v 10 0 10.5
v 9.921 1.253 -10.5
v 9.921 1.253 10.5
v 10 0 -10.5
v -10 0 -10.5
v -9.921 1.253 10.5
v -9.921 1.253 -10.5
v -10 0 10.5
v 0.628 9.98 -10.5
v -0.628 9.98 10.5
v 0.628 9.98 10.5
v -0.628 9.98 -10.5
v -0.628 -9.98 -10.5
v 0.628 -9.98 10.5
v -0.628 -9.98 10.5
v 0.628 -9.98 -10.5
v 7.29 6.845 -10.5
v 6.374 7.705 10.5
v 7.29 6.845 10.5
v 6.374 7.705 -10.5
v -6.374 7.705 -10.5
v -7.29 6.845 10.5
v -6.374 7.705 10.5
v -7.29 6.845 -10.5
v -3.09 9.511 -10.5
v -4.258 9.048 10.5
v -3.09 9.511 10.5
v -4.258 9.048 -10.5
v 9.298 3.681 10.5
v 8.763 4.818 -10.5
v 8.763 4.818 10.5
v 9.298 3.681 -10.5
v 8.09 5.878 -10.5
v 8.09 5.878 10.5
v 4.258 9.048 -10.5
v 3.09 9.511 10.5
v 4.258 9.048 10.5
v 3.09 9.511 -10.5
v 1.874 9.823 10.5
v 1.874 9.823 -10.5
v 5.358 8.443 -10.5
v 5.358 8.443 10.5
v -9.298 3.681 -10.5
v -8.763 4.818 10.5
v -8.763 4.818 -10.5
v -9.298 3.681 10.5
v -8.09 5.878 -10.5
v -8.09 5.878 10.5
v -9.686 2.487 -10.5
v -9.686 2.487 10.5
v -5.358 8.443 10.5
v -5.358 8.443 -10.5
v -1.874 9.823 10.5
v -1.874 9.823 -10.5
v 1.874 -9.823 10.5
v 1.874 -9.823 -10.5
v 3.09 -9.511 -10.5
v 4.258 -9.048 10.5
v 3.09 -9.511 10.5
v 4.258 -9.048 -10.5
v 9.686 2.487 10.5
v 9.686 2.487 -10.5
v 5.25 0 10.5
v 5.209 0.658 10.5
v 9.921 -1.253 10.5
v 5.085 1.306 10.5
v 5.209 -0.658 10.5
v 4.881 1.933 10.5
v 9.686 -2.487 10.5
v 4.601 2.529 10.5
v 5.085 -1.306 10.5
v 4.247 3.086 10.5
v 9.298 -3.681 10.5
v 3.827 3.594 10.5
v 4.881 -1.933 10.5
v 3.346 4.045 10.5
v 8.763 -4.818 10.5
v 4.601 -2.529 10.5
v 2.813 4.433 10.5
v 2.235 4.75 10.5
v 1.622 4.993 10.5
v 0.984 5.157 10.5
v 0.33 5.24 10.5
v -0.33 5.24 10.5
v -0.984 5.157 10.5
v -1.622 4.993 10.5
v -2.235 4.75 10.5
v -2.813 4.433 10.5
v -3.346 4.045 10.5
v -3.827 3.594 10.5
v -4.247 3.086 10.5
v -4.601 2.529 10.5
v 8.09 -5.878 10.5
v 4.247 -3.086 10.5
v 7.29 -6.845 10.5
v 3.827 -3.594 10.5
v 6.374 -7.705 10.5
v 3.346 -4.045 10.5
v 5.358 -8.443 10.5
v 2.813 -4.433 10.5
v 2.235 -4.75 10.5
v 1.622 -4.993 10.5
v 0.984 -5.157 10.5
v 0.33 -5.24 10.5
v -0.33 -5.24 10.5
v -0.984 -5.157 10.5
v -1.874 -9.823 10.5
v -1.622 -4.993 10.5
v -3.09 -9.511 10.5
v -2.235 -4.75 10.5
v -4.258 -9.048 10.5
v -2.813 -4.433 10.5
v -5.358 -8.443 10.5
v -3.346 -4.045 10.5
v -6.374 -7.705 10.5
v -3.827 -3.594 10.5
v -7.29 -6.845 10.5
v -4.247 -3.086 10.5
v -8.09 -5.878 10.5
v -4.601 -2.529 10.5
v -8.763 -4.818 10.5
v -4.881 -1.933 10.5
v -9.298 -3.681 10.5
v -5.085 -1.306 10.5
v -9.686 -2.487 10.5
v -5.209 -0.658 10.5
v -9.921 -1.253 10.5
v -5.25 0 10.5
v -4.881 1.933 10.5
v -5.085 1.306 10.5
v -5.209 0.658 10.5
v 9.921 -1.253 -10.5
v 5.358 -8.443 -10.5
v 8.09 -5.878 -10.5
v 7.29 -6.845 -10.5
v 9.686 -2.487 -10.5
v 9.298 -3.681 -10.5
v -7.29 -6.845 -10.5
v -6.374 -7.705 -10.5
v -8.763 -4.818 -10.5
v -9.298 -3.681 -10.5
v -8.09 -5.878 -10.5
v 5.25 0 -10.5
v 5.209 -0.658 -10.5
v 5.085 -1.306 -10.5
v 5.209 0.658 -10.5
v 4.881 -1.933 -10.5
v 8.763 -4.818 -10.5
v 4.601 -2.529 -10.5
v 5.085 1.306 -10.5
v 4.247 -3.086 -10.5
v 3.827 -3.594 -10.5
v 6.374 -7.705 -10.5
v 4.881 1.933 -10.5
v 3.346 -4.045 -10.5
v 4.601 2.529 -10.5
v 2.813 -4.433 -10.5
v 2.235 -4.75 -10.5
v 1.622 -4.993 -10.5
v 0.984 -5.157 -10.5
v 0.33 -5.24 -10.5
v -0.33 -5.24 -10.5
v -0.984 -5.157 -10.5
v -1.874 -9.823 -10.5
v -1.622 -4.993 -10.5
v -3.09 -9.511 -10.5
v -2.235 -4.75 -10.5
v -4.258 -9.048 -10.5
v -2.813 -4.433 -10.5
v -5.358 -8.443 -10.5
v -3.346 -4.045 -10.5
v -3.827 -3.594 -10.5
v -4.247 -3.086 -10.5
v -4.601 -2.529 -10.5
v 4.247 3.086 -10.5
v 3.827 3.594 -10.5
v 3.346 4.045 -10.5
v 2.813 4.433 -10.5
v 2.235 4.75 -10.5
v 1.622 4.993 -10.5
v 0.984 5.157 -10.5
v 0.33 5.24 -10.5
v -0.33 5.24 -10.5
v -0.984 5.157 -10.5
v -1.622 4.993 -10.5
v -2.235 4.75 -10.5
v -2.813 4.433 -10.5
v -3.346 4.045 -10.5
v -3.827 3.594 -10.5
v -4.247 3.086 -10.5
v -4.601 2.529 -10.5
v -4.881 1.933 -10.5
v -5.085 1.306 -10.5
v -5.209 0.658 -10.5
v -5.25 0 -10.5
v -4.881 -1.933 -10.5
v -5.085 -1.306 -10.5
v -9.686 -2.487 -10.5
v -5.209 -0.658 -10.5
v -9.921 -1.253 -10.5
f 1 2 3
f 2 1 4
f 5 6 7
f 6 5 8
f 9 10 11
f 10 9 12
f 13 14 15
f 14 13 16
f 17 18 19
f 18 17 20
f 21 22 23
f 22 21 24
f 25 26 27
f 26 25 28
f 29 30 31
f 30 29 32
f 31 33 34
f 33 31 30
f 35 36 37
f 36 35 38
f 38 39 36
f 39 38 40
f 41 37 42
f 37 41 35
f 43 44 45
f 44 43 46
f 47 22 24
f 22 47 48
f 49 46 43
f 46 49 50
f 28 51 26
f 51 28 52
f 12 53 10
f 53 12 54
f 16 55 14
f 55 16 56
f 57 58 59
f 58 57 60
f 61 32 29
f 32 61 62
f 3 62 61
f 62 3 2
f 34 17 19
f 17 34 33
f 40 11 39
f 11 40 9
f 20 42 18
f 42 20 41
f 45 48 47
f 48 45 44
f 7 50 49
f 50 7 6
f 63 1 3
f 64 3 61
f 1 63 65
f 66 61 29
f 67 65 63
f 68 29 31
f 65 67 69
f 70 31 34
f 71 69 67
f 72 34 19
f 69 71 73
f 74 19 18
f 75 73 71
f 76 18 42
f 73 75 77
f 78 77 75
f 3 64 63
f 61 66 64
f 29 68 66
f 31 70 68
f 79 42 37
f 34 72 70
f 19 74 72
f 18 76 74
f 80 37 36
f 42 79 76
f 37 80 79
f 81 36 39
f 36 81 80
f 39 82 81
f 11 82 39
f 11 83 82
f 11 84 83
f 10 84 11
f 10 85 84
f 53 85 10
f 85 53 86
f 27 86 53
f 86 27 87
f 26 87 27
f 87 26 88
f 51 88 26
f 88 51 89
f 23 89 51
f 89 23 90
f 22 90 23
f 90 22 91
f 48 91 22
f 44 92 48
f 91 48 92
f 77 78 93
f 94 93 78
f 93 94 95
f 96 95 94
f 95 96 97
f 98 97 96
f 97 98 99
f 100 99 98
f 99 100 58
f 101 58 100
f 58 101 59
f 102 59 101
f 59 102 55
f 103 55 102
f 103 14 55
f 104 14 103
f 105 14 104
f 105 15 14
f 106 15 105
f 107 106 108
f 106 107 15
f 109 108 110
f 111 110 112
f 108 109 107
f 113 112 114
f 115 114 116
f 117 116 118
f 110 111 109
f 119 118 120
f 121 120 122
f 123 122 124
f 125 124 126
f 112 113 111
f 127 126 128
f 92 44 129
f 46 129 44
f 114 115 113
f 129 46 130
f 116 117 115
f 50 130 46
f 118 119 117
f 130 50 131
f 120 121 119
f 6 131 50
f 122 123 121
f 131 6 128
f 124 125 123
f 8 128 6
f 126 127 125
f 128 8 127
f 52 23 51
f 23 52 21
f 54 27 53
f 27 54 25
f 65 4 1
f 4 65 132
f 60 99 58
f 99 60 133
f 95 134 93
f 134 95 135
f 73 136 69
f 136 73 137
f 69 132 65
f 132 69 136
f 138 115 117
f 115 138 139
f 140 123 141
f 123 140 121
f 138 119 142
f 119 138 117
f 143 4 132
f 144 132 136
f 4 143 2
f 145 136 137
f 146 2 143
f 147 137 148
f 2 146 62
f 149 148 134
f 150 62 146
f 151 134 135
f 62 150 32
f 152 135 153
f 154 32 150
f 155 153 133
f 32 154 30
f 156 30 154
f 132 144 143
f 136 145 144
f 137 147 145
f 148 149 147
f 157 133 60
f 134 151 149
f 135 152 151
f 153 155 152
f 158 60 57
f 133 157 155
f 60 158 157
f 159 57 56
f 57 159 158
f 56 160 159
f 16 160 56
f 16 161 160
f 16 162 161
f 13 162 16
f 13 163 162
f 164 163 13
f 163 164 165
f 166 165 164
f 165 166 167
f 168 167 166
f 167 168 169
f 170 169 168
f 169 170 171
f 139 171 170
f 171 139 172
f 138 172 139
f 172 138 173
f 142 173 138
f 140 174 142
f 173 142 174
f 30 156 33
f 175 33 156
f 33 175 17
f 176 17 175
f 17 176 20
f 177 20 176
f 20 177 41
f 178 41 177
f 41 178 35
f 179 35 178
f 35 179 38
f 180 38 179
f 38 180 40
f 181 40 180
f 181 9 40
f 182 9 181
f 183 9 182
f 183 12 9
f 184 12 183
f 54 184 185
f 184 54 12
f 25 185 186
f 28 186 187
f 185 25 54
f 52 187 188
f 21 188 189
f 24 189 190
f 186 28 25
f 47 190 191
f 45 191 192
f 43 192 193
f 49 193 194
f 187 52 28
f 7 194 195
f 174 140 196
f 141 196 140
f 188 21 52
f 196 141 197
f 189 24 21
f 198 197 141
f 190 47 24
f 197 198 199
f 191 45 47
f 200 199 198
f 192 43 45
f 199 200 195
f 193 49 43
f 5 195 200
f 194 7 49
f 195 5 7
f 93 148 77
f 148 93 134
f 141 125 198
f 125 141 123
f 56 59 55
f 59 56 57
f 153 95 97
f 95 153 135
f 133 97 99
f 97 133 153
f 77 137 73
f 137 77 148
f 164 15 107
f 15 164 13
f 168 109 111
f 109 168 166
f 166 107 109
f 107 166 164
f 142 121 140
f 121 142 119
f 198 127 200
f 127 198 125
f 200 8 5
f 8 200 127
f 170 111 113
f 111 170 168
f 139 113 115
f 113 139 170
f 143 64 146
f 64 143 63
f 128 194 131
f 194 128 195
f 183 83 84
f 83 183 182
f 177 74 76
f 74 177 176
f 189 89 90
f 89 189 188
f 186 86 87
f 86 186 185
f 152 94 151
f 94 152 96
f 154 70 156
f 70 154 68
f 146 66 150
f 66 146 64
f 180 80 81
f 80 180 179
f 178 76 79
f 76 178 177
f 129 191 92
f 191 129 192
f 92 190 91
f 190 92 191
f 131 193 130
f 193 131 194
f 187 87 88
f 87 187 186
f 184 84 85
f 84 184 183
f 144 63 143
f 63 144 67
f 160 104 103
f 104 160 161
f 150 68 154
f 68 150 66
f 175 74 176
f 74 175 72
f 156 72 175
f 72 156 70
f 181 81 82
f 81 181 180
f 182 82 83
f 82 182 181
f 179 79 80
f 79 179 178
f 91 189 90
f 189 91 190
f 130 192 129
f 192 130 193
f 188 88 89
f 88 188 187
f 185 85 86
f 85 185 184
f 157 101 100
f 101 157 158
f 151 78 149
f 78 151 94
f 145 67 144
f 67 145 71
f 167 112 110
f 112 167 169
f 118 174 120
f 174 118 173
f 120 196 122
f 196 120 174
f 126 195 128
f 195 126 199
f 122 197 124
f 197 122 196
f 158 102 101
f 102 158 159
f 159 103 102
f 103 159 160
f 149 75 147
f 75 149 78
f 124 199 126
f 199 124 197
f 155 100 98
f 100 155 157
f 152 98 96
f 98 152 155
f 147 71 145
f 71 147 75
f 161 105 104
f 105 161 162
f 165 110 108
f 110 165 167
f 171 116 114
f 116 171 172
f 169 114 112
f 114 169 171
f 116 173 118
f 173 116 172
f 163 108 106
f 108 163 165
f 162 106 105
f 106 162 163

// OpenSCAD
$fn = 50;


difference() {
	union() {
		translate(v = [0, 0, -10.5000000000]) {
			cylinder(h = 21, r = 10.0000000000);
		}
	}
	union() {
		translate(v = [0, 0, -100.0000000000]) {
			cylinder(h = 200, r = 5.2500000000);
		}
	}
}
